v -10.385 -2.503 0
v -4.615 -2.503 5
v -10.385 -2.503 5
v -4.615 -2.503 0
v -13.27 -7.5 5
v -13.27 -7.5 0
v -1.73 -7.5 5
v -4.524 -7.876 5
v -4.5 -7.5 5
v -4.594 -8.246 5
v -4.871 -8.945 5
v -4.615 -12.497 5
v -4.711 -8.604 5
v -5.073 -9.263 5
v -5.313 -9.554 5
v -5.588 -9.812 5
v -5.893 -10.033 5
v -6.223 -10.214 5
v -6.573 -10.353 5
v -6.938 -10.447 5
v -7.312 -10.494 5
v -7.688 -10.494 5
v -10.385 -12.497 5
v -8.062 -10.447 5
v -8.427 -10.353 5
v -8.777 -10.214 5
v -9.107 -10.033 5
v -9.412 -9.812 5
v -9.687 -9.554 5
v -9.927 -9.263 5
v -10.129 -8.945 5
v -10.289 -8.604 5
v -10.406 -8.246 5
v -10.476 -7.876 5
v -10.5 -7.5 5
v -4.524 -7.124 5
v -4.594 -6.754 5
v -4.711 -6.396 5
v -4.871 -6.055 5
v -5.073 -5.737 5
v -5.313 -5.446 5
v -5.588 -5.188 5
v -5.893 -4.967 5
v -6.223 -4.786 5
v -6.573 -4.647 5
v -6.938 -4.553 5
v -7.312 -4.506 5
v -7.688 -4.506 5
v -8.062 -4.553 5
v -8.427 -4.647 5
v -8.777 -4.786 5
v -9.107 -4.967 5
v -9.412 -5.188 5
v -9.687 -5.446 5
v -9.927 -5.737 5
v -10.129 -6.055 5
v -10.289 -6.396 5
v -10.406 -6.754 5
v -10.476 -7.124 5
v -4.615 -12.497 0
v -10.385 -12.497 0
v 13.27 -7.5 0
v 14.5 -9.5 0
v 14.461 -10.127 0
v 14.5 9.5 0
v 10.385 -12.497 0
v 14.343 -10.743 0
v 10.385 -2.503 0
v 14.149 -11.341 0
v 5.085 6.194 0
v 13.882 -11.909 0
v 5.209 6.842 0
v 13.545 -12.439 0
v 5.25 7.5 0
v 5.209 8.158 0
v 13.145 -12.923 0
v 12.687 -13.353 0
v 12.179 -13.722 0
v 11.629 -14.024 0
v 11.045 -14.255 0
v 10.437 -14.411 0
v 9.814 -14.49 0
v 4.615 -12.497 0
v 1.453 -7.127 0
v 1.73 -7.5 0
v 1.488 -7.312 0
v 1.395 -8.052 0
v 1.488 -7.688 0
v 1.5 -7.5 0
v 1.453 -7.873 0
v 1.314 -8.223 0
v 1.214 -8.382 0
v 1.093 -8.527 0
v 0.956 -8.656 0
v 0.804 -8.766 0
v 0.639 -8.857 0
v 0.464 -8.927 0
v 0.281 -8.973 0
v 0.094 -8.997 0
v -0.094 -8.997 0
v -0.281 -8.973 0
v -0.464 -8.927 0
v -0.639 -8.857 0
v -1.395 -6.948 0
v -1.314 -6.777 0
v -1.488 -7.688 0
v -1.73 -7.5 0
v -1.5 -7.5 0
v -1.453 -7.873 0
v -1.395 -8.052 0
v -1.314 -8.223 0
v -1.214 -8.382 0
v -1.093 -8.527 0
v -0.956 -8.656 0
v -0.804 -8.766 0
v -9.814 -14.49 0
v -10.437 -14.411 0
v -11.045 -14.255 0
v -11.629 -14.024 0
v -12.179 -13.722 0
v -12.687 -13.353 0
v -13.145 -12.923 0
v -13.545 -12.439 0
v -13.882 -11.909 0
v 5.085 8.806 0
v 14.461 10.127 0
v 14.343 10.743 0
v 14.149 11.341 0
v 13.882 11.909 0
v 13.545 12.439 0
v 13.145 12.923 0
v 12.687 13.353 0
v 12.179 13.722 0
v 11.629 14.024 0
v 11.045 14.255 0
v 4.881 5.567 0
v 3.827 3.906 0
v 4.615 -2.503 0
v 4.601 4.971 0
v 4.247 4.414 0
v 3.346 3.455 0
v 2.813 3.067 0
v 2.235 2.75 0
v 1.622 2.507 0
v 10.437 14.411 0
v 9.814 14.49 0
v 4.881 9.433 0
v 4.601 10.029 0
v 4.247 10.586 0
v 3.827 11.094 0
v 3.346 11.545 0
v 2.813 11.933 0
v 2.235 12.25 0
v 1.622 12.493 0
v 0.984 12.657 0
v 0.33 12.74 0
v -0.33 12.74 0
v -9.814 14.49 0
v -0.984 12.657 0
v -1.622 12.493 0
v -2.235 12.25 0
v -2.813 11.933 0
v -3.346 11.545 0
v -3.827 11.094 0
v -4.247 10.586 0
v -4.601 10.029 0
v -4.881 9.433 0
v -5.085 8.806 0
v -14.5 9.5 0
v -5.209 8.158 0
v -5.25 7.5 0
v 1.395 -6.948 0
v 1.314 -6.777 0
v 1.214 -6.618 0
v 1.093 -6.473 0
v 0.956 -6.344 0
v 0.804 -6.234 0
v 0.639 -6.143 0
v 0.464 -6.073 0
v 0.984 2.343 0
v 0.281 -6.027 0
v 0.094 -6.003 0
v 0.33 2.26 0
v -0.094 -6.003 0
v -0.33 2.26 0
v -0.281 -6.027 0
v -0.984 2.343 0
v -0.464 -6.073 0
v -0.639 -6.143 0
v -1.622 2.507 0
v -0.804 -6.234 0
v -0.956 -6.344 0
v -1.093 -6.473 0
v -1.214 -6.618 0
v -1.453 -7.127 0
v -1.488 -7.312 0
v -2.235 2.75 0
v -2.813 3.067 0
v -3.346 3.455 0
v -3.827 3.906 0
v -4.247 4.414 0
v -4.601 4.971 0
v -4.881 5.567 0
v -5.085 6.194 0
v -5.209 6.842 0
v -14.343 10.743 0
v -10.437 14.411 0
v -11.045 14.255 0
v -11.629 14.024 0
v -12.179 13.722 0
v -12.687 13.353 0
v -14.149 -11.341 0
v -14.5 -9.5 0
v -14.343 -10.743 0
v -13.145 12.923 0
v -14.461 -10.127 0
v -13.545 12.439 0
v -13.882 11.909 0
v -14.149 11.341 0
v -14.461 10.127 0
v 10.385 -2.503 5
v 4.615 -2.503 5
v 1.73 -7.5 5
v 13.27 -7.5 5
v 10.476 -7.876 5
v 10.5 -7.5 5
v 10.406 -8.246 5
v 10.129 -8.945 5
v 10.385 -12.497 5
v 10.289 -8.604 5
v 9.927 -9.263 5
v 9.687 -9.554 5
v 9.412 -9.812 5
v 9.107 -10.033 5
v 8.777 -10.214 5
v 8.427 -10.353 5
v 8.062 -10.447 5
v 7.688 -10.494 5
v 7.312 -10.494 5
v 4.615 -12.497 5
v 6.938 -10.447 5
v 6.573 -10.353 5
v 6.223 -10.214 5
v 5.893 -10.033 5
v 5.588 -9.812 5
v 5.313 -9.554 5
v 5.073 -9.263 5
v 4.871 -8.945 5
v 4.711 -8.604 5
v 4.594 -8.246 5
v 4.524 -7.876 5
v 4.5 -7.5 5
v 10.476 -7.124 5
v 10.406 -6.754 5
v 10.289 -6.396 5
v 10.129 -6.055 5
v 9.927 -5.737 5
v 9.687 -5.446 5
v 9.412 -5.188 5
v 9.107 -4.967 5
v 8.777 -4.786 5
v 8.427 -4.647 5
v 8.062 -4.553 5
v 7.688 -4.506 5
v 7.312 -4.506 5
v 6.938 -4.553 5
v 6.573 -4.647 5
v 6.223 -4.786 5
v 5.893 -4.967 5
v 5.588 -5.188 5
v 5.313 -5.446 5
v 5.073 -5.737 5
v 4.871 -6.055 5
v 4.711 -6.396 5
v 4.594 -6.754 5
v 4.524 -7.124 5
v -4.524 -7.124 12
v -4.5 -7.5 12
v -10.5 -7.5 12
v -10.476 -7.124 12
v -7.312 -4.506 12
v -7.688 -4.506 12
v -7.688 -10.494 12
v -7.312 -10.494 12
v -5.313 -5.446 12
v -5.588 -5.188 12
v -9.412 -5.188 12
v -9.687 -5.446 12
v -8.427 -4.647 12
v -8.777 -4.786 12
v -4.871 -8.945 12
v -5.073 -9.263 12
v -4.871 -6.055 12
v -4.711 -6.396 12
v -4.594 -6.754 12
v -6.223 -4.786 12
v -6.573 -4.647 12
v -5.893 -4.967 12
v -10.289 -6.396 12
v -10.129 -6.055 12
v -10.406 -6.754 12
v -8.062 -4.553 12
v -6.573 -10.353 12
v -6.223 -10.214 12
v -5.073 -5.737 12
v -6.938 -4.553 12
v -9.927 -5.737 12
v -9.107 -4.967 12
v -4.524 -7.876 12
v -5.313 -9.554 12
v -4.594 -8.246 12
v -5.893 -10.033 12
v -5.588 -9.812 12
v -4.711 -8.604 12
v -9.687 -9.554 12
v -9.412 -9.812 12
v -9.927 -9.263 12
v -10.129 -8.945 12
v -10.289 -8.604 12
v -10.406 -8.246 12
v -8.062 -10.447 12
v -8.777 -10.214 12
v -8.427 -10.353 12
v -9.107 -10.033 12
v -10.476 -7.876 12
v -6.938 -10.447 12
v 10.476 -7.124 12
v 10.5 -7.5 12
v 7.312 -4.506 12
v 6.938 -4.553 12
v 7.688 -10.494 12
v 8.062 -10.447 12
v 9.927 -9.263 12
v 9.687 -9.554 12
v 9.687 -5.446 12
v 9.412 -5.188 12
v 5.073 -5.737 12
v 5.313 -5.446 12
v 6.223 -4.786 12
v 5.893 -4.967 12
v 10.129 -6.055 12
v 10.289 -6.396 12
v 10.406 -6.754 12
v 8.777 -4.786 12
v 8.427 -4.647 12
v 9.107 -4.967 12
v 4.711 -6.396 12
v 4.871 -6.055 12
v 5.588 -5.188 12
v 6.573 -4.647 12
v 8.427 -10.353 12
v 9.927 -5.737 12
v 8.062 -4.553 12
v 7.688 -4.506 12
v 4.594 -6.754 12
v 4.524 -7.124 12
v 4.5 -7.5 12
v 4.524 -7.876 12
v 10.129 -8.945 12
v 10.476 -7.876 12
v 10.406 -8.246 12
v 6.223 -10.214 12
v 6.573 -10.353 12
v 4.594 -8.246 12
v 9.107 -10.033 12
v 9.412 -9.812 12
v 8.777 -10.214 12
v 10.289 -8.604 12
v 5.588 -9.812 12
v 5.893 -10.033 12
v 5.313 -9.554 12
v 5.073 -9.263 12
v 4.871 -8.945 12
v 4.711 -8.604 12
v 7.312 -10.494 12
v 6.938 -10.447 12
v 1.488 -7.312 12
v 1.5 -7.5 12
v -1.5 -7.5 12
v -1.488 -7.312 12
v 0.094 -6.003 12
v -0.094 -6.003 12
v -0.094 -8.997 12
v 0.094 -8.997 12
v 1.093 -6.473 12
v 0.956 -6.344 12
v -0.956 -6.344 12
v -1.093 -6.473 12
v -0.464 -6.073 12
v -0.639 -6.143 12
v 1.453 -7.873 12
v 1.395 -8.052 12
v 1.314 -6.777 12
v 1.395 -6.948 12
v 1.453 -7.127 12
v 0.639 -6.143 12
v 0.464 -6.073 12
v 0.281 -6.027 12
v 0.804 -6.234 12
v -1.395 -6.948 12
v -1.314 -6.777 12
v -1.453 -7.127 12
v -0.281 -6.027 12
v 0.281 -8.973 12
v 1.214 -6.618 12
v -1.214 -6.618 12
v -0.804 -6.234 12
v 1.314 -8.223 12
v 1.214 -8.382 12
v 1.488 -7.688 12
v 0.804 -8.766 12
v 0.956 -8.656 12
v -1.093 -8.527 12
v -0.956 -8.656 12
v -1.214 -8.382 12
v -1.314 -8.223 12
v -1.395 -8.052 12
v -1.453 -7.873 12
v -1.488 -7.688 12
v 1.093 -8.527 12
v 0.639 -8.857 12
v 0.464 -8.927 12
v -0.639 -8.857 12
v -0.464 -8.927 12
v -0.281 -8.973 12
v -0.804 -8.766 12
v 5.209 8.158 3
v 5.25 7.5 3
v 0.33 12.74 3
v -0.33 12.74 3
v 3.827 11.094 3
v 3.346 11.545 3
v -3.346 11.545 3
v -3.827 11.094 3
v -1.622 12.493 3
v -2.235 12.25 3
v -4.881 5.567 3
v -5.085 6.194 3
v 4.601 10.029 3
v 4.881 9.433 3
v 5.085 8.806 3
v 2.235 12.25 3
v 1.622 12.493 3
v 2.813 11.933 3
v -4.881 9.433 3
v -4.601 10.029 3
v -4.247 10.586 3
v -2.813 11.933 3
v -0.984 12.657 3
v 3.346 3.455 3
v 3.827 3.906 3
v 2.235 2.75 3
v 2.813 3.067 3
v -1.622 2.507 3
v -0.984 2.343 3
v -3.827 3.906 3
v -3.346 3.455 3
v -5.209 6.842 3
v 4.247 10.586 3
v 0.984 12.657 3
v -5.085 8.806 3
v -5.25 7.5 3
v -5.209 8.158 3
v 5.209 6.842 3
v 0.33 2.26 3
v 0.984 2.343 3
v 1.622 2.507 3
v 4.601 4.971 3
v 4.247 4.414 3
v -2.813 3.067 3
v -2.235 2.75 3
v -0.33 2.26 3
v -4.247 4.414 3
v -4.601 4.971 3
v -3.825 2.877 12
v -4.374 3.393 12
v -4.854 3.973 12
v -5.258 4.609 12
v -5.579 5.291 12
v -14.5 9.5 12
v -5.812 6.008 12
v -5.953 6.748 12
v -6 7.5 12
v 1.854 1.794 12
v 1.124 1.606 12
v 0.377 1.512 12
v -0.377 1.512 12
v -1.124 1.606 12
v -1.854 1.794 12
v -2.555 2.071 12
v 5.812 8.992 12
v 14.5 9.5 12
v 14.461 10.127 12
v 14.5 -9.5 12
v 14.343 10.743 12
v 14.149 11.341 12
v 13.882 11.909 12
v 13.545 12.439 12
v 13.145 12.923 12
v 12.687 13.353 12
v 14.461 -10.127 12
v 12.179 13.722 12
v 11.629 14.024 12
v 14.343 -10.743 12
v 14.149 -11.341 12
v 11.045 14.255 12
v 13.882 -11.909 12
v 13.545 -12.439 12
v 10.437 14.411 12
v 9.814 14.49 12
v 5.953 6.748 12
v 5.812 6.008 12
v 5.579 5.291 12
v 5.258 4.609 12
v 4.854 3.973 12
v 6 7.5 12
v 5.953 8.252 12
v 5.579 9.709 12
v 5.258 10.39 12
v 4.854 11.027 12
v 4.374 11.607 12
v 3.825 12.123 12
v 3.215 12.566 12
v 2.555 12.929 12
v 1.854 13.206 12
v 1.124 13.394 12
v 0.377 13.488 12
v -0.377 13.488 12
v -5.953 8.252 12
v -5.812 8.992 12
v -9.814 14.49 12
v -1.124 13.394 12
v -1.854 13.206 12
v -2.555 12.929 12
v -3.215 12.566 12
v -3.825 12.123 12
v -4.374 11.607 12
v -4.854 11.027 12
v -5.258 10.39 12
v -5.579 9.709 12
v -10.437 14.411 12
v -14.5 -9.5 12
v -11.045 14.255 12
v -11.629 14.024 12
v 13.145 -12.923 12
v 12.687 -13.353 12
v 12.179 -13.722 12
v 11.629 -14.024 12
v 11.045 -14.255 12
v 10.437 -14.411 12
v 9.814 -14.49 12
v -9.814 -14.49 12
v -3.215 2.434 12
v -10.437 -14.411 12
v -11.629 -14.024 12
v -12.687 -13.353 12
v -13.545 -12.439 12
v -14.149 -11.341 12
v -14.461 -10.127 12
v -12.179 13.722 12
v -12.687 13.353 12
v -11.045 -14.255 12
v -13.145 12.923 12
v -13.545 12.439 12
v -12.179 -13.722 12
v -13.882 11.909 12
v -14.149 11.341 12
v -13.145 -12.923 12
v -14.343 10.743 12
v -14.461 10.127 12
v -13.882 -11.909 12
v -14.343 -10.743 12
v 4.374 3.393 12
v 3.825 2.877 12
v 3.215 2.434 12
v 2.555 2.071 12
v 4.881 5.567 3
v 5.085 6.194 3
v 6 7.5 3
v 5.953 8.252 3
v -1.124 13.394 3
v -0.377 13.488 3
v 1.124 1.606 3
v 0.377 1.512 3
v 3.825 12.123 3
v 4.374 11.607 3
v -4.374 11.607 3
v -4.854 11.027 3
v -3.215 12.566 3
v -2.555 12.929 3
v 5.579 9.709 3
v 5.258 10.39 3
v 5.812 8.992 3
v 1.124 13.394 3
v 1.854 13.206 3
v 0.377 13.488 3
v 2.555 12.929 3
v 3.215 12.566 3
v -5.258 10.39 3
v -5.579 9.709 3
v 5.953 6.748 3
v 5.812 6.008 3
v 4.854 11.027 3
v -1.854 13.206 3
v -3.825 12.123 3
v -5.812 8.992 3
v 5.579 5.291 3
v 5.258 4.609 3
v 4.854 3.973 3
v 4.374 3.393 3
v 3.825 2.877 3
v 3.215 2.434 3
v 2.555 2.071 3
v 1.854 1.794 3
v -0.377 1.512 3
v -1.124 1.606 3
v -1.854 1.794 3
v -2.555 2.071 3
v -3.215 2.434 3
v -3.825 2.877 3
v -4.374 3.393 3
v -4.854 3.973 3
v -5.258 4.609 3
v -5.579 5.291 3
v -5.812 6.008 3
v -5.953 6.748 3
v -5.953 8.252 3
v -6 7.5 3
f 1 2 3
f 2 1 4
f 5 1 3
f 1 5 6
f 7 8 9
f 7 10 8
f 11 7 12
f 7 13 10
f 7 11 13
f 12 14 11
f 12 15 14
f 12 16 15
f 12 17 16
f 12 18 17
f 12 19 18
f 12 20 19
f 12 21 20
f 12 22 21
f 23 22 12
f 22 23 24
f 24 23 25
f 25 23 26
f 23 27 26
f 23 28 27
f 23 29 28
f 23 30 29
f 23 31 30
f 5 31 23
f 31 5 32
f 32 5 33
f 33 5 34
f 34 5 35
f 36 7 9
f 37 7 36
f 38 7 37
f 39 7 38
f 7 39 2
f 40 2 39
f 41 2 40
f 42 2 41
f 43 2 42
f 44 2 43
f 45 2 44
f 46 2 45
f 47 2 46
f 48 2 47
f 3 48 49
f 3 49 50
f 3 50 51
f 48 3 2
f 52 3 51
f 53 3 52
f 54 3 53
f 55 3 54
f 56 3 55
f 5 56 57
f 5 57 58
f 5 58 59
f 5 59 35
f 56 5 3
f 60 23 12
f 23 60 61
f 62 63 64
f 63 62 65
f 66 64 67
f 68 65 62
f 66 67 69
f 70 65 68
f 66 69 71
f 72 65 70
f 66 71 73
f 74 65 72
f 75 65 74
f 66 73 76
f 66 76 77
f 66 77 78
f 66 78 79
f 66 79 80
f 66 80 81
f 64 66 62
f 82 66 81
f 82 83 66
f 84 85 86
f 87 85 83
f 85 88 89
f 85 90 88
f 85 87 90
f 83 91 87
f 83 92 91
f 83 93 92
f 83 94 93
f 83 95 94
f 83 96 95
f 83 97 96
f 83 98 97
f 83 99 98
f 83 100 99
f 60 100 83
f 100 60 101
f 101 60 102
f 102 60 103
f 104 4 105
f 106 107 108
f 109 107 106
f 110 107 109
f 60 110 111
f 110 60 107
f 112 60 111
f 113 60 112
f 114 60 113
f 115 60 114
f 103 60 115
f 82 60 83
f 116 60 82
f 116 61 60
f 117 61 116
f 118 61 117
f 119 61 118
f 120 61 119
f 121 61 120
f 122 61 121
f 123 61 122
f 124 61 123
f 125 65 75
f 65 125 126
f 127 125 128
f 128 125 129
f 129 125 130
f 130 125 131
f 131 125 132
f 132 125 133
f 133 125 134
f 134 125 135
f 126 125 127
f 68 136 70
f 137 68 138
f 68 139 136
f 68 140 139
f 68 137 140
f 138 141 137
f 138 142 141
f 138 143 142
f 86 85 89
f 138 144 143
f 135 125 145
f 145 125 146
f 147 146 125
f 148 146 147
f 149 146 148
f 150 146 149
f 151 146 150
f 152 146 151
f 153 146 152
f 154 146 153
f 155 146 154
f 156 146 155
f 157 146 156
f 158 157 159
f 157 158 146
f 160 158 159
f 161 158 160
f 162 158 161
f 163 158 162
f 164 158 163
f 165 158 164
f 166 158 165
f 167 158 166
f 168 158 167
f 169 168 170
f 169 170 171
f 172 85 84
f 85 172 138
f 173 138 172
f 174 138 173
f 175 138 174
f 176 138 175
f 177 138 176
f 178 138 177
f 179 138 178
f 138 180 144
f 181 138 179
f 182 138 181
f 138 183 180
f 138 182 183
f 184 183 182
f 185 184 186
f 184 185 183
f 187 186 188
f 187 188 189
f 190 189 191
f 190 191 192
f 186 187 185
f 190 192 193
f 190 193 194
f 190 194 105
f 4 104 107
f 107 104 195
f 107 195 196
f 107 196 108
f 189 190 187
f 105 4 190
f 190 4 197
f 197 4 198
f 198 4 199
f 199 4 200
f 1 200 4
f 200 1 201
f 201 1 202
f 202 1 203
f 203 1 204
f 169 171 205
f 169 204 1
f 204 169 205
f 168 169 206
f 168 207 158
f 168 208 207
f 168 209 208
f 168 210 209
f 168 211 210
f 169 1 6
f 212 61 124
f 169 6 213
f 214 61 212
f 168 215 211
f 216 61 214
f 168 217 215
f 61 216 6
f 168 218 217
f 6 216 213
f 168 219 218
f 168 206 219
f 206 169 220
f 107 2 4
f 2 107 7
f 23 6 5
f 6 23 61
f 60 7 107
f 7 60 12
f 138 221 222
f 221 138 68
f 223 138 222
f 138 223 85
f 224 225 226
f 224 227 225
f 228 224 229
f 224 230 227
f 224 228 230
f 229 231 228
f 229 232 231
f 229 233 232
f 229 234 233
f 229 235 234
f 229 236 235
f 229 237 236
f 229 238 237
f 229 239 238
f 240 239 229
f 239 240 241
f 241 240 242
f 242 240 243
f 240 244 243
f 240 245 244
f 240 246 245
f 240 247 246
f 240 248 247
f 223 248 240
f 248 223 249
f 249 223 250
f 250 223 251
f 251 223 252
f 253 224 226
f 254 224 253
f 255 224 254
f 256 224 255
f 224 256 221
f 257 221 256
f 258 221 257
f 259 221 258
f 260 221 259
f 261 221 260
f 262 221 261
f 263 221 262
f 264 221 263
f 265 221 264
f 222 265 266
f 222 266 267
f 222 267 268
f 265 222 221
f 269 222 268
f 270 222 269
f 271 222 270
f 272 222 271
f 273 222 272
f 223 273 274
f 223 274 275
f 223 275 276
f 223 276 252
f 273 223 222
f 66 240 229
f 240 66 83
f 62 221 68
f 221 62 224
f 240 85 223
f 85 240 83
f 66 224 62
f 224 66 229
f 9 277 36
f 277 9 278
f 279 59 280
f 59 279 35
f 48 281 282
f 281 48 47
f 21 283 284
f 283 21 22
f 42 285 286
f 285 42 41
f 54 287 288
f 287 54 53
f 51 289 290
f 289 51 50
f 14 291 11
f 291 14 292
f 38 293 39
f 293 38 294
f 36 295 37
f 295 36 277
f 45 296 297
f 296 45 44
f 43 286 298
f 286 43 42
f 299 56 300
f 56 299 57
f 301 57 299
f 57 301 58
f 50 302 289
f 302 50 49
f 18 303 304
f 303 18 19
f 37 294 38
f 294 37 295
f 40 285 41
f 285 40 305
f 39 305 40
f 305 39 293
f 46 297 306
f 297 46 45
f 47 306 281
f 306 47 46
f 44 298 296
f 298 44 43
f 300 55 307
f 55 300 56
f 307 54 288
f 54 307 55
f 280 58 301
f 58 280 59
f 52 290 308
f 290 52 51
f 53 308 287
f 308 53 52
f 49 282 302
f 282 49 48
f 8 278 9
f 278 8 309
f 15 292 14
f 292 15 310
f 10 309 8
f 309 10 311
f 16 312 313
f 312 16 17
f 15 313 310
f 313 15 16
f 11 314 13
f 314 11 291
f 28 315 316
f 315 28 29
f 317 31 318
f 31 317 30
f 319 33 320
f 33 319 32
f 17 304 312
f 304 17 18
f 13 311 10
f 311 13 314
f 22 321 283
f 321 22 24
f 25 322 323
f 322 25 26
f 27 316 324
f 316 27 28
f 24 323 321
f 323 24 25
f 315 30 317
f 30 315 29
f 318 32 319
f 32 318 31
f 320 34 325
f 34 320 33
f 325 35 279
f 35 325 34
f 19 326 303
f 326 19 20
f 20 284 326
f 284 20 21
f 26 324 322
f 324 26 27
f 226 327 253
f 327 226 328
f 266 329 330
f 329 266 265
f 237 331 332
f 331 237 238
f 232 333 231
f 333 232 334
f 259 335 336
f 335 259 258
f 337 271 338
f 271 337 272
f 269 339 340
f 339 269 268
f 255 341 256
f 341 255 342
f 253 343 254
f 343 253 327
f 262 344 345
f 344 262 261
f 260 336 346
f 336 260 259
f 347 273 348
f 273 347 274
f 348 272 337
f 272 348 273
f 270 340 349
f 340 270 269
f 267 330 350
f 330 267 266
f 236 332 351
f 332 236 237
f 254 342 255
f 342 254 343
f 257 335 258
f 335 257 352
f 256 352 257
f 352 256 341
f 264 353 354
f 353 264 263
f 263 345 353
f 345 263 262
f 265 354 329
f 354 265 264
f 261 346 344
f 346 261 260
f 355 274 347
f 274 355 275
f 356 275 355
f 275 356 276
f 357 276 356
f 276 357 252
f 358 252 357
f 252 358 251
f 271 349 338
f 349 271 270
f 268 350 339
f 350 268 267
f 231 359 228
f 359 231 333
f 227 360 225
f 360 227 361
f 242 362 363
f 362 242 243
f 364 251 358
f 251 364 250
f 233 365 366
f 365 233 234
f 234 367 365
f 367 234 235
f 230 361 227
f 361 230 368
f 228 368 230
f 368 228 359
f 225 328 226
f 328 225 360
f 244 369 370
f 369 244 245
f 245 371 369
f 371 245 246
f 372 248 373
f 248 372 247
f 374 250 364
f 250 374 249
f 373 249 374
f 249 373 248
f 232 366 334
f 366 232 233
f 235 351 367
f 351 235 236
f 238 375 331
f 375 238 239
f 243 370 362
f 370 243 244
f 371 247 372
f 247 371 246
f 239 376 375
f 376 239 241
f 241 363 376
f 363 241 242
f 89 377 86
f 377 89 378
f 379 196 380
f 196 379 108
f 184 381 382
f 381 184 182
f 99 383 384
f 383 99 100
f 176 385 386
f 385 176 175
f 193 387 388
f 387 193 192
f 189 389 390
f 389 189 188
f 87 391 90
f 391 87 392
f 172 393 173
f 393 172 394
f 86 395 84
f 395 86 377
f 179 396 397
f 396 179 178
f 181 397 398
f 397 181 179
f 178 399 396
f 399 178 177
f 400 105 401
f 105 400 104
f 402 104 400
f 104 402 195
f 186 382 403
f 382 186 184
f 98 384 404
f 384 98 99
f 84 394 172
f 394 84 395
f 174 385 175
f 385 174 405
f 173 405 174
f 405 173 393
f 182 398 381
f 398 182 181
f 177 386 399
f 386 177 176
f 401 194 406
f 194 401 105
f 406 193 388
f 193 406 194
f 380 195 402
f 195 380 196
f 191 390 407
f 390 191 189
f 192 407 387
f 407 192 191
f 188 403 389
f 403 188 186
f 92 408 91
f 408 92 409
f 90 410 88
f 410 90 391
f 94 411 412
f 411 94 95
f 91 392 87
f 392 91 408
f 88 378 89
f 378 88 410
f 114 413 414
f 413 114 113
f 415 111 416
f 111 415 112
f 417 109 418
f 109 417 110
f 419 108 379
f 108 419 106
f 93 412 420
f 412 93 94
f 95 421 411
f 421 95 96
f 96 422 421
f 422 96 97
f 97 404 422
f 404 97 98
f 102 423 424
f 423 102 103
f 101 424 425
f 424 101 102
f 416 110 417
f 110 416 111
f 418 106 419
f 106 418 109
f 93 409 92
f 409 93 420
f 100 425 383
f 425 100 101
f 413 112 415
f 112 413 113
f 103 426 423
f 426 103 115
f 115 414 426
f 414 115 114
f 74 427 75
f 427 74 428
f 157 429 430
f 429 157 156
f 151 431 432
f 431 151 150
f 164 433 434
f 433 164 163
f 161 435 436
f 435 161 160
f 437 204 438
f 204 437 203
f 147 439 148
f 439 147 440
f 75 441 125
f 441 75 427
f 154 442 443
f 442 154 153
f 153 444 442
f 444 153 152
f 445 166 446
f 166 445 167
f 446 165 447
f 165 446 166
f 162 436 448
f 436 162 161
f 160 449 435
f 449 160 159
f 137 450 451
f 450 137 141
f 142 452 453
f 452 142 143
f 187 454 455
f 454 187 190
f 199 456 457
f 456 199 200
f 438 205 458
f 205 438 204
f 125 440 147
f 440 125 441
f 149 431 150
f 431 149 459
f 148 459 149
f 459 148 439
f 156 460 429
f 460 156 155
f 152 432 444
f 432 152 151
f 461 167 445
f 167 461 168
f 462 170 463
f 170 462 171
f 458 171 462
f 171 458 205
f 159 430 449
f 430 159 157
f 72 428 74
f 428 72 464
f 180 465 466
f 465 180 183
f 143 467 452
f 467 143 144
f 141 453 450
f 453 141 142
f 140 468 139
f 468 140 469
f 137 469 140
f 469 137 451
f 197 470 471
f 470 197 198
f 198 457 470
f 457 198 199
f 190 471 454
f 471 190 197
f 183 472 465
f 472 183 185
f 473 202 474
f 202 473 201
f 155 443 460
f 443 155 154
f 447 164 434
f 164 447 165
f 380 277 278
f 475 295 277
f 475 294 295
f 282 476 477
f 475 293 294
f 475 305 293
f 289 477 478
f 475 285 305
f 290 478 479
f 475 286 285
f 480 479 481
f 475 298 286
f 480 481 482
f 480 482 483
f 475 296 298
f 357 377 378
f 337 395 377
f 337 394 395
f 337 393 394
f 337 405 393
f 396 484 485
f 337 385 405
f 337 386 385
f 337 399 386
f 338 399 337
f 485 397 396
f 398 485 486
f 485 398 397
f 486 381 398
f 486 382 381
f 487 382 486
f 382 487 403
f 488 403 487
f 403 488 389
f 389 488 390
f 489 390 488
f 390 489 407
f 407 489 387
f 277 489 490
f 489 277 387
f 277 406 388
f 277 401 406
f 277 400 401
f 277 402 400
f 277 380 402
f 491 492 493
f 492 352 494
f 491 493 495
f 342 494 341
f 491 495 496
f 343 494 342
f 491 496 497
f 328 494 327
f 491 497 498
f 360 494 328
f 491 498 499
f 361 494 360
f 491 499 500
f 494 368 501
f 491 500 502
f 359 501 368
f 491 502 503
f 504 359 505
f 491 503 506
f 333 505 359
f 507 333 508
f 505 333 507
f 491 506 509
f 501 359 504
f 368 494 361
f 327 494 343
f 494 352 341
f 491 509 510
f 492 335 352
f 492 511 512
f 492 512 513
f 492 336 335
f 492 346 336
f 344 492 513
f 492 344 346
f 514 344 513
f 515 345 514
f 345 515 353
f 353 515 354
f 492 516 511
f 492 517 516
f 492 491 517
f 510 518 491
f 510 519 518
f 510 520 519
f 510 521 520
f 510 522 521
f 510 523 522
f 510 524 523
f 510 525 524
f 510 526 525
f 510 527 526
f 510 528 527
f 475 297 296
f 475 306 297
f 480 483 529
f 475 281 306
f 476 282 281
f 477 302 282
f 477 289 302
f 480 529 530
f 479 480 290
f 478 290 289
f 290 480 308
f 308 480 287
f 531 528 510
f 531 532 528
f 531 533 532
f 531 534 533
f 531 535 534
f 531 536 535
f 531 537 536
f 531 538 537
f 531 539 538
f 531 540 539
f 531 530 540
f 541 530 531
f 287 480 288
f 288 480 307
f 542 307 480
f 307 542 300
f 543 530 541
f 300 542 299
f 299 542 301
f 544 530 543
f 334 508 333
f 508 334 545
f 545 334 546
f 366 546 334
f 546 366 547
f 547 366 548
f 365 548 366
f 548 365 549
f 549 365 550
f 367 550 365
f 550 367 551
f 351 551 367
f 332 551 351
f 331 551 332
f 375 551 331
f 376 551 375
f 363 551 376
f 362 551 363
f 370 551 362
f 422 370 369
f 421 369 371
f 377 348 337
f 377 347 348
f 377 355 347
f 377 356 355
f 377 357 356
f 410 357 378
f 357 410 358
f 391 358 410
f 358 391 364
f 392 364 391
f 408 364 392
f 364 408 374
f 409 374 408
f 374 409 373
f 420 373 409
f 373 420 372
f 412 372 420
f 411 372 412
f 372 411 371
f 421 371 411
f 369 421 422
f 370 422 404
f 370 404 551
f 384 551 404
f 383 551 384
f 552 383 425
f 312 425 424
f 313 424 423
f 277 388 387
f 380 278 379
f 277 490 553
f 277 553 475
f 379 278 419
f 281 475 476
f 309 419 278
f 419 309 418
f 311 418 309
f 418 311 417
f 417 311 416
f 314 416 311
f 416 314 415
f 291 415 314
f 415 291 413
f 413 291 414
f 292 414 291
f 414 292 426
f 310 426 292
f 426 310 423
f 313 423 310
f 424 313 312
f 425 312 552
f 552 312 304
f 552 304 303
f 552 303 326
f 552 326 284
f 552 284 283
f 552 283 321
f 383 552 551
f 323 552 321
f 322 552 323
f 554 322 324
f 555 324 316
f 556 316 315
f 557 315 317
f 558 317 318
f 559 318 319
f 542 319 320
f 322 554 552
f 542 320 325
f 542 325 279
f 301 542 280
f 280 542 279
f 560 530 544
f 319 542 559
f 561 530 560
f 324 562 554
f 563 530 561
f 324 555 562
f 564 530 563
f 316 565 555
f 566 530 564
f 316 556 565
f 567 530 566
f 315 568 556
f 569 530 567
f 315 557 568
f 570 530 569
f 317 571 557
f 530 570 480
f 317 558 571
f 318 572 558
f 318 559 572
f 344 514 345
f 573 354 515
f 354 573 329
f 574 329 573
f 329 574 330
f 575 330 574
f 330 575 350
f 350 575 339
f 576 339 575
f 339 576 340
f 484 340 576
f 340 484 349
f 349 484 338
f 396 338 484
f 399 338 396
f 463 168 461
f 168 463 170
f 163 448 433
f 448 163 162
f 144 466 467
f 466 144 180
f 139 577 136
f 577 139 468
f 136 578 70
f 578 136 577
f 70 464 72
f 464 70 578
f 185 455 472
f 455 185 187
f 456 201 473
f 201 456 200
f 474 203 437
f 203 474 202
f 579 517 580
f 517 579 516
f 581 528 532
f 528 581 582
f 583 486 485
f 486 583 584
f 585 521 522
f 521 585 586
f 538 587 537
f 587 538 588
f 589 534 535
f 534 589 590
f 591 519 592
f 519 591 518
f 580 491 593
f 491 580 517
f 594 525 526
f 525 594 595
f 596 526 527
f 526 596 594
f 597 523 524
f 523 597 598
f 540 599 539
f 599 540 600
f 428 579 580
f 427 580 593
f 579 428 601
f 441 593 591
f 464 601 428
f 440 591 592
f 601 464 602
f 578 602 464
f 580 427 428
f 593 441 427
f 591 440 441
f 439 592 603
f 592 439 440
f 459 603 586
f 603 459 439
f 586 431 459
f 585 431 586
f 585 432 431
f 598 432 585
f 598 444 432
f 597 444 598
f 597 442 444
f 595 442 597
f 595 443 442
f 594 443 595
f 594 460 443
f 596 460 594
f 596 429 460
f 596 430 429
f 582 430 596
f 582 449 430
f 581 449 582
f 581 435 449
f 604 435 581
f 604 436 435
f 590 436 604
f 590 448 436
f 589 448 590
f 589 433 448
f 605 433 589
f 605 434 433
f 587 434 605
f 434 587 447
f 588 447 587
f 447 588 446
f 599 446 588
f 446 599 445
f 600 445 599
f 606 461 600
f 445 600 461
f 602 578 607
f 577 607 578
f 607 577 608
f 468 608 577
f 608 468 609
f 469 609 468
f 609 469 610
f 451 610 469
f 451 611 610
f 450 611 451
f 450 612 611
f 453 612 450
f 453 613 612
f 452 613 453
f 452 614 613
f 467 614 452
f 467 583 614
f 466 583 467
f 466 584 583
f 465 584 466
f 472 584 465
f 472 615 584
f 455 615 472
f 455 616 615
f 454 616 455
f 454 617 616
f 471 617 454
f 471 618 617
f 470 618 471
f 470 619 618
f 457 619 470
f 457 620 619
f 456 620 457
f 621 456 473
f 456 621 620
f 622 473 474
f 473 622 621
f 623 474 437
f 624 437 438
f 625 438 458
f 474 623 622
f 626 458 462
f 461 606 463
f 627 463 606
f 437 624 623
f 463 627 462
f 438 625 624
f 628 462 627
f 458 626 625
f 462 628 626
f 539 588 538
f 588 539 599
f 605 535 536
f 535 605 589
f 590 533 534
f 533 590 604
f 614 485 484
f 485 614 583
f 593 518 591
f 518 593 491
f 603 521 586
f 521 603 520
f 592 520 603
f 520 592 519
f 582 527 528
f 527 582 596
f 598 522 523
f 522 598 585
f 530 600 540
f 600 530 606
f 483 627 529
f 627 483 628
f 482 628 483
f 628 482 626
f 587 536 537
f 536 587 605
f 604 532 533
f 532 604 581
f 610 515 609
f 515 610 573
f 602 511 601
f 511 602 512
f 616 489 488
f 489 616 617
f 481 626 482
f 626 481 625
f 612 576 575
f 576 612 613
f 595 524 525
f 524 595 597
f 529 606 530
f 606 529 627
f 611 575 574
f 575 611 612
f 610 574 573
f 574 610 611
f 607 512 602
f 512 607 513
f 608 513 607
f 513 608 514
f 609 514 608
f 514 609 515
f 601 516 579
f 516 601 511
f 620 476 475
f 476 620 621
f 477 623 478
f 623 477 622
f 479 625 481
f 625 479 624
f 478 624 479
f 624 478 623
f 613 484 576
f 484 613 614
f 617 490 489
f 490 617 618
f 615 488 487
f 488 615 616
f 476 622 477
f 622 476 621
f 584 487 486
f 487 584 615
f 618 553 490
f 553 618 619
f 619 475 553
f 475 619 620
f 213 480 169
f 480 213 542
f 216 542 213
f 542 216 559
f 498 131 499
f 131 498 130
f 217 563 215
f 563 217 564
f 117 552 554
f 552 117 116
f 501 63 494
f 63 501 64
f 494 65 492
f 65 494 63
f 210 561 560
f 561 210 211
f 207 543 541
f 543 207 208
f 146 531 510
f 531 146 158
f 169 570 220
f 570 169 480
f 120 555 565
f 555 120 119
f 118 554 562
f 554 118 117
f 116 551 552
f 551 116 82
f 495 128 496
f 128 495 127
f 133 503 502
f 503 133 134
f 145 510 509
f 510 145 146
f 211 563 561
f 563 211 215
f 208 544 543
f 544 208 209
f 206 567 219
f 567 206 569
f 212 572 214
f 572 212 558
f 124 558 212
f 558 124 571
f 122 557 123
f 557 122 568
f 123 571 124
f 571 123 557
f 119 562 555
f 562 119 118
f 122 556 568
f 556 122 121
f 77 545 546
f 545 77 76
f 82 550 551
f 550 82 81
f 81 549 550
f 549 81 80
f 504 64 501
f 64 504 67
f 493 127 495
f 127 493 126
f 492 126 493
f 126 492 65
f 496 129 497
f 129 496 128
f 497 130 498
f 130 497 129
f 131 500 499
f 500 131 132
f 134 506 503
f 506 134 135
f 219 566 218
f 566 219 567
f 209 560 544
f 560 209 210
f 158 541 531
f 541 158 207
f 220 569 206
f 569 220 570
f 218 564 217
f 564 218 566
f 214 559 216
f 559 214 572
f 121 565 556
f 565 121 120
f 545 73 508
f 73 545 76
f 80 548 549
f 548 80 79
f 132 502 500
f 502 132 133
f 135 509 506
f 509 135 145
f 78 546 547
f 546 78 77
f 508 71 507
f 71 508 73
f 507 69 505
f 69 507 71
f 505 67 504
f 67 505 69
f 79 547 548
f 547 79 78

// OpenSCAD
$fn = 50;


difference() {
	union() {
		hull() {
			translate(v = [-9.5000000000, 9.5000000000, 0]) {
				cylinder(h = 12, r = 5);
			}
			translate(v = [9.5000000000, 9.5000000000, 0]) {
				cylinder(h = 12, r = 5);
			}
			translate(v = [-9.5000000000, -9.5000000000, 0]) {
				cylinder(h = 12, r = 5);
			}
			translate(v = [9.5000000000, -9.5000000000, 0]) {
				cylinder(h = 12, r = 5);
			}
		}
	}
	union() {
		translate(v = [-7.5000000000, -7.5000000000, 0]) {
			rotate(a = [0, 0, 0]) {
				difference() {
					union() {
						#linear_extrude(height = 5) {
							polygon(points = [[5.7700000000, 0.0000000000], [2.8850000000, 4.9969665798], [-2.8850000000, 4.9969665798], [-5.7700000000, 0.0000000000], [-2.8850000000, -4.9969665798], [2.8850000000, -4.9969665798]]);
						}
					}
					union();
				}
			}
		}
		translate(v = [7.5000000000, -7.5000000000, 0]) {
			rotate(a = [0, 0, 0]) {
				difference() {
					union() {
						#linear_extrude(height = 5) {
							polygon(points = [[5.7700000000, 0.0000000000], [2.8850000000, 4.9969665798], [-2.8850000000, 4.9969665798], [-5.7700000000, 0.0000000000], [-2.8850000000, -4.9969665798], [2.8850000000, -4.9969665798]]);
						}
					}
					union();
				}
			}
		}
		translate(v = [-7.5000000000, -7.5000000000, -100.0000000000]) {
			cylinder(h = 200, r = 3.0000000000);
		}
		translate(v = [7.5000000000, -7.5000000000, -100.0000000000]) {
			cylinder(h = 200, r = 3.0000000000);
		}
		translate(v = [-7.5000000000, -7.5000000000, -100.0000000000]) {
			cylinder(h = 200, r = 1.5000000000);
		}
		translate(v = [0.0000000000, -7.5000000000, -100.0000000000]) {
			cylinder(h = 200, r = 1.5000000000);
		}
		translate(v = [7.5000000000, -7.5000000000, -100.0000000000]) {
			cylinder(h = 200, r = 1.5000000000);
		}
		translate(v = [-7.5000000000, -7.5000000000, -100.0000000000]) {
			cylinder(h = 200, r = 1.5000000000);
		}
		translate(v = [0.0000000000, -7.5000000000, -100.0000000000]) {
			cylinder(h = 200, r = 1.5000000000);
		}
		translate(v = [7.5000000000, -7.5000000000, -100.0000000000]) {
			cylinder(h = 200, r = 1.5000000000);
		}
		translate(v = [-7.5000000000, -7.5000000000, -100.0000000000]) {
			cylinder(h = 200, r = 1.5000000000);
		}
		translate(v = [0.0000000000, -7.5000000000, -100.0000000000]) {
			cylinder(h = 200, r = 1.5000000000);
		}
		translate(v = [7.5000000000, -7.5000000000, -100.0000000000]) {
			cylinder(h = 200, r = 1.5000000000);
		}
		#translate(v = [0, 7.5000000000, 0]) {
			cylinder(h = 12, r = 5.2500000000);
		}
		#translate(v = [0, 7.5000000000, 3]) {
			cylinder(h = 9, r = 6.0000000000);
		}
	}
}
